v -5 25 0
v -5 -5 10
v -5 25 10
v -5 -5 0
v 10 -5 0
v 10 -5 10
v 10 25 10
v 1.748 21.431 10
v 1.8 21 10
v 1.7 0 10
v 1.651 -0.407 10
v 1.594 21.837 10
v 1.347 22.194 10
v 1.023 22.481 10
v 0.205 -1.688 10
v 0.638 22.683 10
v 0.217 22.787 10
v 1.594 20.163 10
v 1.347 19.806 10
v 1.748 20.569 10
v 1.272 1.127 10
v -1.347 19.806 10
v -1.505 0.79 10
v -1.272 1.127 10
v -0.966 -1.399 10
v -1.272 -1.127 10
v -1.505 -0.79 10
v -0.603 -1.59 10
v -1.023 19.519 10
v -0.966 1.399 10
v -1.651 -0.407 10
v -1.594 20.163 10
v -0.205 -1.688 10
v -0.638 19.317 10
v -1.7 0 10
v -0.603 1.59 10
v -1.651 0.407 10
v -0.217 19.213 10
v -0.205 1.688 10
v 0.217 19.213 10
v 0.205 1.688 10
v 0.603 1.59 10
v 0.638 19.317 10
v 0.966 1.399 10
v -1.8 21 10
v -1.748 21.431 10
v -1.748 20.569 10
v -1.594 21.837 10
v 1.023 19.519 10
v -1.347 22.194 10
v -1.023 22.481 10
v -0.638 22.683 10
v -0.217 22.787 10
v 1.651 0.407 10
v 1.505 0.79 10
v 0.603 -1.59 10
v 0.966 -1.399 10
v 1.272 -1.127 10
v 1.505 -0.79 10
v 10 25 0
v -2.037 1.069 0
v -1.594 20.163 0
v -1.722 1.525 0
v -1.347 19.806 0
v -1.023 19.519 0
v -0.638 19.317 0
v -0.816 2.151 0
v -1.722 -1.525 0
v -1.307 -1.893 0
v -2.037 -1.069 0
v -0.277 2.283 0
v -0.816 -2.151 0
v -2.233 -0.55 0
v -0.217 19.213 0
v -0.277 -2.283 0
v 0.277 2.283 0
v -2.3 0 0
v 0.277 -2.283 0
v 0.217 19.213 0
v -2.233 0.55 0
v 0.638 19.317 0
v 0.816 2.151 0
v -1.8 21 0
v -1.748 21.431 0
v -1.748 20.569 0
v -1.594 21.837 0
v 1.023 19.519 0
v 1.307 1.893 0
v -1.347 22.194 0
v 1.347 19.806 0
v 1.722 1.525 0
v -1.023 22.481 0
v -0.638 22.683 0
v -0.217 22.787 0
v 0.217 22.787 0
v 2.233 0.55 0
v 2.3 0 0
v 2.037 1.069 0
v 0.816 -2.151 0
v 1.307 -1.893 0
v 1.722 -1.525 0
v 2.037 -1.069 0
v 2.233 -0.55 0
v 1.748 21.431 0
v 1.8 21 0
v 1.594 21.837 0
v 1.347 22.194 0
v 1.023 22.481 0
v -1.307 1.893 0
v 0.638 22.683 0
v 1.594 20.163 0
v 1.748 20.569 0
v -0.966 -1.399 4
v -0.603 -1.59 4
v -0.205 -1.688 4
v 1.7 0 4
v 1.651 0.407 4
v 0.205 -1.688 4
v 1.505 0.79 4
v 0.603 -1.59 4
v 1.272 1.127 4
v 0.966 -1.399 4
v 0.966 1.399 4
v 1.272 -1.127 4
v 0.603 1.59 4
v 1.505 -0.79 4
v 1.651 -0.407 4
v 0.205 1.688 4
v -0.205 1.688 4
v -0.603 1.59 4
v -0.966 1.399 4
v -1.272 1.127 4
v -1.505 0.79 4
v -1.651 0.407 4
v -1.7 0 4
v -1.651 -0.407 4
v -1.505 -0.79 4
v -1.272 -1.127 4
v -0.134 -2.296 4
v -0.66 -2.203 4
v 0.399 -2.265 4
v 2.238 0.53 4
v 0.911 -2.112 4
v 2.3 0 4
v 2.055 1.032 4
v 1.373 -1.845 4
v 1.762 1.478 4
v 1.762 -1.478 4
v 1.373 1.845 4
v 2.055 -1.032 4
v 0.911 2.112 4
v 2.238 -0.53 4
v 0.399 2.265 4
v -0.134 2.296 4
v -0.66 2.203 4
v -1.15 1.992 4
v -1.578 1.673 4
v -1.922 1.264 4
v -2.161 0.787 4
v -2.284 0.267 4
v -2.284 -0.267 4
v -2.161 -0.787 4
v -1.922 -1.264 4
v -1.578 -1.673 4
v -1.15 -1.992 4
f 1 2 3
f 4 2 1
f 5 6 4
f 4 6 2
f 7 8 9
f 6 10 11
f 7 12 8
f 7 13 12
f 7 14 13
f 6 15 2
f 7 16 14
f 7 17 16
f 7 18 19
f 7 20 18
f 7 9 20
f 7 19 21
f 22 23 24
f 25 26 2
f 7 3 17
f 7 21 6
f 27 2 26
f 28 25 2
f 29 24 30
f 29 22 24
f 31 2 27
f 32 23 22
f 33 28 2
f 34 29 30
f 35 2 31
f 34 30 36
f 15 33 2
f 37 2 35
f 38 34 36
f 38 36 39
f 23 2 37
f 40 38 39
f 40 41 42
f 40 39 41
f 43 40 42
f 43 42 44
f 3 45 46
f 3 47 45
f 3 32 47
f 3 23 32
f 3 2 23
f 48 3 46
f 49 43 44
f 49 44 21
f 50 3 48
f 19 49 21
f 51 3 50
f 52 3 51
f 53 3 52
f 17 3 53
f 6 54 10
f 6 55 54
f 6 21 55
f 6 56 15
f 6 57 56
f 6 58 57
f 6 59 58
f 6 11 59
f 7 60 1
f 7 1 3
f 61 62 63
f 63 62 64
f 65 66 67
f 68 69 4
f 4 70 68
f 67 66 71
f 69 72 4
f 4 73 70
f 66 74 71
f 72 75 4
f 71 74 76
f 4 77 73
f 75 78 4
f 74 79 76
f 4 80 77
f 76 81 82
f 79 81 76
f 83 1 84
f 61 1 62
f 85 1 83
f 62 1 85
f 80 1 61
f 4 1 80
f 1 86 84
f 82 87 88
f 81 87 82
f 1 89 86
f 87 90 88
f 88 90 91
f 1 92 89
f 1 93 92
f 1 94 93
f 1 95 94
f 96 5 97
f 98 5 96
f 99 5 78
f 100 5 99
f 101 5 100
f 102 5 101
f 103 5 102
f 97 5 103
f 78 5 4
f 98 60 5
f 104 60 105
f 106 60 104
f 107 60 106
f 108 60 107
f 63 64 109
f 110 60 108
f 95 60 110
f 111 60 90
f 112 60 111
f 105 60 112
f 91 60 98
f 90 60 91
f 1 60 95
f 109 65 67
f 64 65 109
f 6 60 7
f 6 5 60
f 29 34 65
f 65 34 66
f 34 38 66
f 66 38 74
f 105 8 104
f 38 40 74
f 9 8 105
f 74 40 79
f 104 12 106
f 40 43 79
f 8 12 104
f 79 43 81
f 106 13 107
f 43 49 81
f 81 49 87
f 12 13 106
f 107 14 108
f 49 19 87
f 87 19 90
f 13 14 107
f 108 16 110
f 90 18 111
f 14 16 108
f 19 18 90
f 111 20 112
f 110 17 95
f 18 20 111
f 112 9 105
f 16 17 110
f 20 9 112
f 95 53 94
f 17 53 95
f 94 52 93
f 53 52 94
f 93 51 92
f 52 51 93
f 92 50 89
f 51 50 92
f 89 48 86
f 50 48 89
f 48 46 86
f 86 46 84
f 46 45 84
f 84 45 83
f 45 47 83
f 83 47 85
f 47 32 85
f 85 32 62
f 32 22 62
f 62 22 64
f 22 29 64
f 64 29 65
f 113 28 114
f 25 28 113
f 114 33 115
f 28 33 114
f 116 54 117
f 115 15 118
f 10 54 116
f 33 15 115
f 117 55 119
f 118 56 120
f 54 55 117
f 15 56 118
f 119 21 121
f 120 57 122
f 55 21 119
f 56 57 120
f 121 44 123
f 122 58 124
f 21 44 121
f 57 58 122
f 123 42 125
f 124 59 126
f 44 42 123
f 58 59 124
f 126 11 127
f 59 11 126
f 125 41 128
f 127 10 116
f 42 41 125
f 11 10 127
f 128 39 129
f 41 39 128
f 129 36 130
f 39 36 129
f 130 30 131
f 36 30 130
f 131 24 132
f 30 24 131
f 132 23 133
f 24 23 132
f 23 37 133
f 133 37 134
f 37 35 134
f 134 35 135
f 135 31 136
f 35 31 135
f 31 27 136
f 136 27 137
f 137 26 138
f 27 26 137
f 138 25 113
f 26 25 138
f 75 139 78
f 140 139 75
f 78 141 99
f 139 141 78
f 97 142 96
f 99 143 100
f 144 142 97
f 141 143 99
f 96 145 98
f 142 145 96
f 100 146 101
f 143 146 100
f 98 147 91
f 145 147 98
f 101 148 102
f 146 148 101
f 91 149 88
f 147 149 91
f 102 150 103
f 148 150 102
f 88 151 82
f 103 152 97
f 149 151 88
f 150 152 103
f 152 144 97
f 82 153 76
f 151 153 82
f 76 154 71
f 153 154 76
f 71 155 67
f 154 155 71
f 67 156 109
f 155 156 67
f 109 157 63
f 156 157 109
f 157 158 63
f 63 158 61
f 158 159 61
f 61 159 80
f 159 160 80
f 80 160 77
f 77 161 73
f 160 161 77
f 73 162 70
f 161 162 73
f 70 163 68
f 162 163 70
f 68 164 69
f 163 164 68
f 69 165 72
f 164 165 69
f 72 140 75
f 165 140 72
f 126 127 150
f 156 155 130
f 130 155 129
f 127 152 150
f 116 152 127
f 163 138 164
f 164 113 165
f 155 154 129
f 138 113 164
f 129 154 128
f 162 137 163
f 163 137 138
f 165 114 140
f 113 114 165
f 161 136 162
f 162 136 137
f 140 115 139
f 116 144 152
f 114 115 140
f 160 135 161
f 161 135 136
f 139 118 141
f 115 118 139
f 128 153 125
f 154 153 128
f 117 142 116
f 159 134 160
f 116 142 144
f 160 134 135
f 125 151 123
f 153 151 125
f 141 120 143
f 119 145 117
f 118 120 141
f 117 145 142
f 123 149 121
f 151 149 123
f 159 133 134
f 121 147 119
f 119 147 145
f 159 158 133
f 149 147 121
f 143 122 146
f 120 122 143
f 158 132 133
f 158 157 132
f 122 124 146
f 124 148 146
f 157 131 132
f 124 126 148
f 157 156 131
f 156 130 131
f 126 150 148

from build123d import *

# Parameters (mm, degrees)
CYLINDER002_R     = 1.8
CYLINDER002_DEPTH = 20
CYLINDER001_R     = 2.3
CYLINDER001_DEPTH = 10
CYLINDER_R        = 1.7
CYLINDER_DEPTH    = 10
BOX_W             = 15
BOX_H             = 30
BOX_DEPTH         = 10


with BuildPart() as m3_clear:
    # Cylinder002 → Cylinder002 (new body)
    with BuildSketch(Plane(origin=(0, 21, -4), x_dir=(1, 0, 0), z_dir=(0, 0, 1))):
        Circle(CYLINDER002_R)
    extrude(amount=CYLINDER002_DEPTH)


with BuildPart() as cylinder001:
    # Cylinder001 → Cylinder001 (new body)
    with BuildSketch(Plane.XY):
        Circle(CYLINDER001_R)
    extrude(amount=CYLINDER001_DEPTH)


with BuildPart() as fusion001:
    # Cylinder → Cylinder (new body)
    with BuildSketch(Plane.XY.offset(7)):
        Circle(CYLINDER_R)
    extrude(amount=CYLINDER_DEPTH)

    # Fusion: union Cylinder001
    add(cylinder001.part)


with BuildPart() as fusion001_1:
    # Fusion placement: moved
    add(fusion001.part.moved(Location((0, 0, -6))))

    # Fusion001: union M3-clear
    add(m3_clear.part)


with BuildPart() as cut:
    # Box → Box (new body)
    with BuildSketch(Plane(origin=(-5, -5, 0), x_dir=(1, 0, 0), z_dir=(0, 0, 1))):
        with Locations((7.5, 15)):
            Rectangle(BOX_W, BOX_H)
    extrude(amount=BOX_DEPTH)

    # Cut: cut Fusion001
    add(fusion001_1.part, mode=Mode.SUBTRACT)


solid = cut.part
